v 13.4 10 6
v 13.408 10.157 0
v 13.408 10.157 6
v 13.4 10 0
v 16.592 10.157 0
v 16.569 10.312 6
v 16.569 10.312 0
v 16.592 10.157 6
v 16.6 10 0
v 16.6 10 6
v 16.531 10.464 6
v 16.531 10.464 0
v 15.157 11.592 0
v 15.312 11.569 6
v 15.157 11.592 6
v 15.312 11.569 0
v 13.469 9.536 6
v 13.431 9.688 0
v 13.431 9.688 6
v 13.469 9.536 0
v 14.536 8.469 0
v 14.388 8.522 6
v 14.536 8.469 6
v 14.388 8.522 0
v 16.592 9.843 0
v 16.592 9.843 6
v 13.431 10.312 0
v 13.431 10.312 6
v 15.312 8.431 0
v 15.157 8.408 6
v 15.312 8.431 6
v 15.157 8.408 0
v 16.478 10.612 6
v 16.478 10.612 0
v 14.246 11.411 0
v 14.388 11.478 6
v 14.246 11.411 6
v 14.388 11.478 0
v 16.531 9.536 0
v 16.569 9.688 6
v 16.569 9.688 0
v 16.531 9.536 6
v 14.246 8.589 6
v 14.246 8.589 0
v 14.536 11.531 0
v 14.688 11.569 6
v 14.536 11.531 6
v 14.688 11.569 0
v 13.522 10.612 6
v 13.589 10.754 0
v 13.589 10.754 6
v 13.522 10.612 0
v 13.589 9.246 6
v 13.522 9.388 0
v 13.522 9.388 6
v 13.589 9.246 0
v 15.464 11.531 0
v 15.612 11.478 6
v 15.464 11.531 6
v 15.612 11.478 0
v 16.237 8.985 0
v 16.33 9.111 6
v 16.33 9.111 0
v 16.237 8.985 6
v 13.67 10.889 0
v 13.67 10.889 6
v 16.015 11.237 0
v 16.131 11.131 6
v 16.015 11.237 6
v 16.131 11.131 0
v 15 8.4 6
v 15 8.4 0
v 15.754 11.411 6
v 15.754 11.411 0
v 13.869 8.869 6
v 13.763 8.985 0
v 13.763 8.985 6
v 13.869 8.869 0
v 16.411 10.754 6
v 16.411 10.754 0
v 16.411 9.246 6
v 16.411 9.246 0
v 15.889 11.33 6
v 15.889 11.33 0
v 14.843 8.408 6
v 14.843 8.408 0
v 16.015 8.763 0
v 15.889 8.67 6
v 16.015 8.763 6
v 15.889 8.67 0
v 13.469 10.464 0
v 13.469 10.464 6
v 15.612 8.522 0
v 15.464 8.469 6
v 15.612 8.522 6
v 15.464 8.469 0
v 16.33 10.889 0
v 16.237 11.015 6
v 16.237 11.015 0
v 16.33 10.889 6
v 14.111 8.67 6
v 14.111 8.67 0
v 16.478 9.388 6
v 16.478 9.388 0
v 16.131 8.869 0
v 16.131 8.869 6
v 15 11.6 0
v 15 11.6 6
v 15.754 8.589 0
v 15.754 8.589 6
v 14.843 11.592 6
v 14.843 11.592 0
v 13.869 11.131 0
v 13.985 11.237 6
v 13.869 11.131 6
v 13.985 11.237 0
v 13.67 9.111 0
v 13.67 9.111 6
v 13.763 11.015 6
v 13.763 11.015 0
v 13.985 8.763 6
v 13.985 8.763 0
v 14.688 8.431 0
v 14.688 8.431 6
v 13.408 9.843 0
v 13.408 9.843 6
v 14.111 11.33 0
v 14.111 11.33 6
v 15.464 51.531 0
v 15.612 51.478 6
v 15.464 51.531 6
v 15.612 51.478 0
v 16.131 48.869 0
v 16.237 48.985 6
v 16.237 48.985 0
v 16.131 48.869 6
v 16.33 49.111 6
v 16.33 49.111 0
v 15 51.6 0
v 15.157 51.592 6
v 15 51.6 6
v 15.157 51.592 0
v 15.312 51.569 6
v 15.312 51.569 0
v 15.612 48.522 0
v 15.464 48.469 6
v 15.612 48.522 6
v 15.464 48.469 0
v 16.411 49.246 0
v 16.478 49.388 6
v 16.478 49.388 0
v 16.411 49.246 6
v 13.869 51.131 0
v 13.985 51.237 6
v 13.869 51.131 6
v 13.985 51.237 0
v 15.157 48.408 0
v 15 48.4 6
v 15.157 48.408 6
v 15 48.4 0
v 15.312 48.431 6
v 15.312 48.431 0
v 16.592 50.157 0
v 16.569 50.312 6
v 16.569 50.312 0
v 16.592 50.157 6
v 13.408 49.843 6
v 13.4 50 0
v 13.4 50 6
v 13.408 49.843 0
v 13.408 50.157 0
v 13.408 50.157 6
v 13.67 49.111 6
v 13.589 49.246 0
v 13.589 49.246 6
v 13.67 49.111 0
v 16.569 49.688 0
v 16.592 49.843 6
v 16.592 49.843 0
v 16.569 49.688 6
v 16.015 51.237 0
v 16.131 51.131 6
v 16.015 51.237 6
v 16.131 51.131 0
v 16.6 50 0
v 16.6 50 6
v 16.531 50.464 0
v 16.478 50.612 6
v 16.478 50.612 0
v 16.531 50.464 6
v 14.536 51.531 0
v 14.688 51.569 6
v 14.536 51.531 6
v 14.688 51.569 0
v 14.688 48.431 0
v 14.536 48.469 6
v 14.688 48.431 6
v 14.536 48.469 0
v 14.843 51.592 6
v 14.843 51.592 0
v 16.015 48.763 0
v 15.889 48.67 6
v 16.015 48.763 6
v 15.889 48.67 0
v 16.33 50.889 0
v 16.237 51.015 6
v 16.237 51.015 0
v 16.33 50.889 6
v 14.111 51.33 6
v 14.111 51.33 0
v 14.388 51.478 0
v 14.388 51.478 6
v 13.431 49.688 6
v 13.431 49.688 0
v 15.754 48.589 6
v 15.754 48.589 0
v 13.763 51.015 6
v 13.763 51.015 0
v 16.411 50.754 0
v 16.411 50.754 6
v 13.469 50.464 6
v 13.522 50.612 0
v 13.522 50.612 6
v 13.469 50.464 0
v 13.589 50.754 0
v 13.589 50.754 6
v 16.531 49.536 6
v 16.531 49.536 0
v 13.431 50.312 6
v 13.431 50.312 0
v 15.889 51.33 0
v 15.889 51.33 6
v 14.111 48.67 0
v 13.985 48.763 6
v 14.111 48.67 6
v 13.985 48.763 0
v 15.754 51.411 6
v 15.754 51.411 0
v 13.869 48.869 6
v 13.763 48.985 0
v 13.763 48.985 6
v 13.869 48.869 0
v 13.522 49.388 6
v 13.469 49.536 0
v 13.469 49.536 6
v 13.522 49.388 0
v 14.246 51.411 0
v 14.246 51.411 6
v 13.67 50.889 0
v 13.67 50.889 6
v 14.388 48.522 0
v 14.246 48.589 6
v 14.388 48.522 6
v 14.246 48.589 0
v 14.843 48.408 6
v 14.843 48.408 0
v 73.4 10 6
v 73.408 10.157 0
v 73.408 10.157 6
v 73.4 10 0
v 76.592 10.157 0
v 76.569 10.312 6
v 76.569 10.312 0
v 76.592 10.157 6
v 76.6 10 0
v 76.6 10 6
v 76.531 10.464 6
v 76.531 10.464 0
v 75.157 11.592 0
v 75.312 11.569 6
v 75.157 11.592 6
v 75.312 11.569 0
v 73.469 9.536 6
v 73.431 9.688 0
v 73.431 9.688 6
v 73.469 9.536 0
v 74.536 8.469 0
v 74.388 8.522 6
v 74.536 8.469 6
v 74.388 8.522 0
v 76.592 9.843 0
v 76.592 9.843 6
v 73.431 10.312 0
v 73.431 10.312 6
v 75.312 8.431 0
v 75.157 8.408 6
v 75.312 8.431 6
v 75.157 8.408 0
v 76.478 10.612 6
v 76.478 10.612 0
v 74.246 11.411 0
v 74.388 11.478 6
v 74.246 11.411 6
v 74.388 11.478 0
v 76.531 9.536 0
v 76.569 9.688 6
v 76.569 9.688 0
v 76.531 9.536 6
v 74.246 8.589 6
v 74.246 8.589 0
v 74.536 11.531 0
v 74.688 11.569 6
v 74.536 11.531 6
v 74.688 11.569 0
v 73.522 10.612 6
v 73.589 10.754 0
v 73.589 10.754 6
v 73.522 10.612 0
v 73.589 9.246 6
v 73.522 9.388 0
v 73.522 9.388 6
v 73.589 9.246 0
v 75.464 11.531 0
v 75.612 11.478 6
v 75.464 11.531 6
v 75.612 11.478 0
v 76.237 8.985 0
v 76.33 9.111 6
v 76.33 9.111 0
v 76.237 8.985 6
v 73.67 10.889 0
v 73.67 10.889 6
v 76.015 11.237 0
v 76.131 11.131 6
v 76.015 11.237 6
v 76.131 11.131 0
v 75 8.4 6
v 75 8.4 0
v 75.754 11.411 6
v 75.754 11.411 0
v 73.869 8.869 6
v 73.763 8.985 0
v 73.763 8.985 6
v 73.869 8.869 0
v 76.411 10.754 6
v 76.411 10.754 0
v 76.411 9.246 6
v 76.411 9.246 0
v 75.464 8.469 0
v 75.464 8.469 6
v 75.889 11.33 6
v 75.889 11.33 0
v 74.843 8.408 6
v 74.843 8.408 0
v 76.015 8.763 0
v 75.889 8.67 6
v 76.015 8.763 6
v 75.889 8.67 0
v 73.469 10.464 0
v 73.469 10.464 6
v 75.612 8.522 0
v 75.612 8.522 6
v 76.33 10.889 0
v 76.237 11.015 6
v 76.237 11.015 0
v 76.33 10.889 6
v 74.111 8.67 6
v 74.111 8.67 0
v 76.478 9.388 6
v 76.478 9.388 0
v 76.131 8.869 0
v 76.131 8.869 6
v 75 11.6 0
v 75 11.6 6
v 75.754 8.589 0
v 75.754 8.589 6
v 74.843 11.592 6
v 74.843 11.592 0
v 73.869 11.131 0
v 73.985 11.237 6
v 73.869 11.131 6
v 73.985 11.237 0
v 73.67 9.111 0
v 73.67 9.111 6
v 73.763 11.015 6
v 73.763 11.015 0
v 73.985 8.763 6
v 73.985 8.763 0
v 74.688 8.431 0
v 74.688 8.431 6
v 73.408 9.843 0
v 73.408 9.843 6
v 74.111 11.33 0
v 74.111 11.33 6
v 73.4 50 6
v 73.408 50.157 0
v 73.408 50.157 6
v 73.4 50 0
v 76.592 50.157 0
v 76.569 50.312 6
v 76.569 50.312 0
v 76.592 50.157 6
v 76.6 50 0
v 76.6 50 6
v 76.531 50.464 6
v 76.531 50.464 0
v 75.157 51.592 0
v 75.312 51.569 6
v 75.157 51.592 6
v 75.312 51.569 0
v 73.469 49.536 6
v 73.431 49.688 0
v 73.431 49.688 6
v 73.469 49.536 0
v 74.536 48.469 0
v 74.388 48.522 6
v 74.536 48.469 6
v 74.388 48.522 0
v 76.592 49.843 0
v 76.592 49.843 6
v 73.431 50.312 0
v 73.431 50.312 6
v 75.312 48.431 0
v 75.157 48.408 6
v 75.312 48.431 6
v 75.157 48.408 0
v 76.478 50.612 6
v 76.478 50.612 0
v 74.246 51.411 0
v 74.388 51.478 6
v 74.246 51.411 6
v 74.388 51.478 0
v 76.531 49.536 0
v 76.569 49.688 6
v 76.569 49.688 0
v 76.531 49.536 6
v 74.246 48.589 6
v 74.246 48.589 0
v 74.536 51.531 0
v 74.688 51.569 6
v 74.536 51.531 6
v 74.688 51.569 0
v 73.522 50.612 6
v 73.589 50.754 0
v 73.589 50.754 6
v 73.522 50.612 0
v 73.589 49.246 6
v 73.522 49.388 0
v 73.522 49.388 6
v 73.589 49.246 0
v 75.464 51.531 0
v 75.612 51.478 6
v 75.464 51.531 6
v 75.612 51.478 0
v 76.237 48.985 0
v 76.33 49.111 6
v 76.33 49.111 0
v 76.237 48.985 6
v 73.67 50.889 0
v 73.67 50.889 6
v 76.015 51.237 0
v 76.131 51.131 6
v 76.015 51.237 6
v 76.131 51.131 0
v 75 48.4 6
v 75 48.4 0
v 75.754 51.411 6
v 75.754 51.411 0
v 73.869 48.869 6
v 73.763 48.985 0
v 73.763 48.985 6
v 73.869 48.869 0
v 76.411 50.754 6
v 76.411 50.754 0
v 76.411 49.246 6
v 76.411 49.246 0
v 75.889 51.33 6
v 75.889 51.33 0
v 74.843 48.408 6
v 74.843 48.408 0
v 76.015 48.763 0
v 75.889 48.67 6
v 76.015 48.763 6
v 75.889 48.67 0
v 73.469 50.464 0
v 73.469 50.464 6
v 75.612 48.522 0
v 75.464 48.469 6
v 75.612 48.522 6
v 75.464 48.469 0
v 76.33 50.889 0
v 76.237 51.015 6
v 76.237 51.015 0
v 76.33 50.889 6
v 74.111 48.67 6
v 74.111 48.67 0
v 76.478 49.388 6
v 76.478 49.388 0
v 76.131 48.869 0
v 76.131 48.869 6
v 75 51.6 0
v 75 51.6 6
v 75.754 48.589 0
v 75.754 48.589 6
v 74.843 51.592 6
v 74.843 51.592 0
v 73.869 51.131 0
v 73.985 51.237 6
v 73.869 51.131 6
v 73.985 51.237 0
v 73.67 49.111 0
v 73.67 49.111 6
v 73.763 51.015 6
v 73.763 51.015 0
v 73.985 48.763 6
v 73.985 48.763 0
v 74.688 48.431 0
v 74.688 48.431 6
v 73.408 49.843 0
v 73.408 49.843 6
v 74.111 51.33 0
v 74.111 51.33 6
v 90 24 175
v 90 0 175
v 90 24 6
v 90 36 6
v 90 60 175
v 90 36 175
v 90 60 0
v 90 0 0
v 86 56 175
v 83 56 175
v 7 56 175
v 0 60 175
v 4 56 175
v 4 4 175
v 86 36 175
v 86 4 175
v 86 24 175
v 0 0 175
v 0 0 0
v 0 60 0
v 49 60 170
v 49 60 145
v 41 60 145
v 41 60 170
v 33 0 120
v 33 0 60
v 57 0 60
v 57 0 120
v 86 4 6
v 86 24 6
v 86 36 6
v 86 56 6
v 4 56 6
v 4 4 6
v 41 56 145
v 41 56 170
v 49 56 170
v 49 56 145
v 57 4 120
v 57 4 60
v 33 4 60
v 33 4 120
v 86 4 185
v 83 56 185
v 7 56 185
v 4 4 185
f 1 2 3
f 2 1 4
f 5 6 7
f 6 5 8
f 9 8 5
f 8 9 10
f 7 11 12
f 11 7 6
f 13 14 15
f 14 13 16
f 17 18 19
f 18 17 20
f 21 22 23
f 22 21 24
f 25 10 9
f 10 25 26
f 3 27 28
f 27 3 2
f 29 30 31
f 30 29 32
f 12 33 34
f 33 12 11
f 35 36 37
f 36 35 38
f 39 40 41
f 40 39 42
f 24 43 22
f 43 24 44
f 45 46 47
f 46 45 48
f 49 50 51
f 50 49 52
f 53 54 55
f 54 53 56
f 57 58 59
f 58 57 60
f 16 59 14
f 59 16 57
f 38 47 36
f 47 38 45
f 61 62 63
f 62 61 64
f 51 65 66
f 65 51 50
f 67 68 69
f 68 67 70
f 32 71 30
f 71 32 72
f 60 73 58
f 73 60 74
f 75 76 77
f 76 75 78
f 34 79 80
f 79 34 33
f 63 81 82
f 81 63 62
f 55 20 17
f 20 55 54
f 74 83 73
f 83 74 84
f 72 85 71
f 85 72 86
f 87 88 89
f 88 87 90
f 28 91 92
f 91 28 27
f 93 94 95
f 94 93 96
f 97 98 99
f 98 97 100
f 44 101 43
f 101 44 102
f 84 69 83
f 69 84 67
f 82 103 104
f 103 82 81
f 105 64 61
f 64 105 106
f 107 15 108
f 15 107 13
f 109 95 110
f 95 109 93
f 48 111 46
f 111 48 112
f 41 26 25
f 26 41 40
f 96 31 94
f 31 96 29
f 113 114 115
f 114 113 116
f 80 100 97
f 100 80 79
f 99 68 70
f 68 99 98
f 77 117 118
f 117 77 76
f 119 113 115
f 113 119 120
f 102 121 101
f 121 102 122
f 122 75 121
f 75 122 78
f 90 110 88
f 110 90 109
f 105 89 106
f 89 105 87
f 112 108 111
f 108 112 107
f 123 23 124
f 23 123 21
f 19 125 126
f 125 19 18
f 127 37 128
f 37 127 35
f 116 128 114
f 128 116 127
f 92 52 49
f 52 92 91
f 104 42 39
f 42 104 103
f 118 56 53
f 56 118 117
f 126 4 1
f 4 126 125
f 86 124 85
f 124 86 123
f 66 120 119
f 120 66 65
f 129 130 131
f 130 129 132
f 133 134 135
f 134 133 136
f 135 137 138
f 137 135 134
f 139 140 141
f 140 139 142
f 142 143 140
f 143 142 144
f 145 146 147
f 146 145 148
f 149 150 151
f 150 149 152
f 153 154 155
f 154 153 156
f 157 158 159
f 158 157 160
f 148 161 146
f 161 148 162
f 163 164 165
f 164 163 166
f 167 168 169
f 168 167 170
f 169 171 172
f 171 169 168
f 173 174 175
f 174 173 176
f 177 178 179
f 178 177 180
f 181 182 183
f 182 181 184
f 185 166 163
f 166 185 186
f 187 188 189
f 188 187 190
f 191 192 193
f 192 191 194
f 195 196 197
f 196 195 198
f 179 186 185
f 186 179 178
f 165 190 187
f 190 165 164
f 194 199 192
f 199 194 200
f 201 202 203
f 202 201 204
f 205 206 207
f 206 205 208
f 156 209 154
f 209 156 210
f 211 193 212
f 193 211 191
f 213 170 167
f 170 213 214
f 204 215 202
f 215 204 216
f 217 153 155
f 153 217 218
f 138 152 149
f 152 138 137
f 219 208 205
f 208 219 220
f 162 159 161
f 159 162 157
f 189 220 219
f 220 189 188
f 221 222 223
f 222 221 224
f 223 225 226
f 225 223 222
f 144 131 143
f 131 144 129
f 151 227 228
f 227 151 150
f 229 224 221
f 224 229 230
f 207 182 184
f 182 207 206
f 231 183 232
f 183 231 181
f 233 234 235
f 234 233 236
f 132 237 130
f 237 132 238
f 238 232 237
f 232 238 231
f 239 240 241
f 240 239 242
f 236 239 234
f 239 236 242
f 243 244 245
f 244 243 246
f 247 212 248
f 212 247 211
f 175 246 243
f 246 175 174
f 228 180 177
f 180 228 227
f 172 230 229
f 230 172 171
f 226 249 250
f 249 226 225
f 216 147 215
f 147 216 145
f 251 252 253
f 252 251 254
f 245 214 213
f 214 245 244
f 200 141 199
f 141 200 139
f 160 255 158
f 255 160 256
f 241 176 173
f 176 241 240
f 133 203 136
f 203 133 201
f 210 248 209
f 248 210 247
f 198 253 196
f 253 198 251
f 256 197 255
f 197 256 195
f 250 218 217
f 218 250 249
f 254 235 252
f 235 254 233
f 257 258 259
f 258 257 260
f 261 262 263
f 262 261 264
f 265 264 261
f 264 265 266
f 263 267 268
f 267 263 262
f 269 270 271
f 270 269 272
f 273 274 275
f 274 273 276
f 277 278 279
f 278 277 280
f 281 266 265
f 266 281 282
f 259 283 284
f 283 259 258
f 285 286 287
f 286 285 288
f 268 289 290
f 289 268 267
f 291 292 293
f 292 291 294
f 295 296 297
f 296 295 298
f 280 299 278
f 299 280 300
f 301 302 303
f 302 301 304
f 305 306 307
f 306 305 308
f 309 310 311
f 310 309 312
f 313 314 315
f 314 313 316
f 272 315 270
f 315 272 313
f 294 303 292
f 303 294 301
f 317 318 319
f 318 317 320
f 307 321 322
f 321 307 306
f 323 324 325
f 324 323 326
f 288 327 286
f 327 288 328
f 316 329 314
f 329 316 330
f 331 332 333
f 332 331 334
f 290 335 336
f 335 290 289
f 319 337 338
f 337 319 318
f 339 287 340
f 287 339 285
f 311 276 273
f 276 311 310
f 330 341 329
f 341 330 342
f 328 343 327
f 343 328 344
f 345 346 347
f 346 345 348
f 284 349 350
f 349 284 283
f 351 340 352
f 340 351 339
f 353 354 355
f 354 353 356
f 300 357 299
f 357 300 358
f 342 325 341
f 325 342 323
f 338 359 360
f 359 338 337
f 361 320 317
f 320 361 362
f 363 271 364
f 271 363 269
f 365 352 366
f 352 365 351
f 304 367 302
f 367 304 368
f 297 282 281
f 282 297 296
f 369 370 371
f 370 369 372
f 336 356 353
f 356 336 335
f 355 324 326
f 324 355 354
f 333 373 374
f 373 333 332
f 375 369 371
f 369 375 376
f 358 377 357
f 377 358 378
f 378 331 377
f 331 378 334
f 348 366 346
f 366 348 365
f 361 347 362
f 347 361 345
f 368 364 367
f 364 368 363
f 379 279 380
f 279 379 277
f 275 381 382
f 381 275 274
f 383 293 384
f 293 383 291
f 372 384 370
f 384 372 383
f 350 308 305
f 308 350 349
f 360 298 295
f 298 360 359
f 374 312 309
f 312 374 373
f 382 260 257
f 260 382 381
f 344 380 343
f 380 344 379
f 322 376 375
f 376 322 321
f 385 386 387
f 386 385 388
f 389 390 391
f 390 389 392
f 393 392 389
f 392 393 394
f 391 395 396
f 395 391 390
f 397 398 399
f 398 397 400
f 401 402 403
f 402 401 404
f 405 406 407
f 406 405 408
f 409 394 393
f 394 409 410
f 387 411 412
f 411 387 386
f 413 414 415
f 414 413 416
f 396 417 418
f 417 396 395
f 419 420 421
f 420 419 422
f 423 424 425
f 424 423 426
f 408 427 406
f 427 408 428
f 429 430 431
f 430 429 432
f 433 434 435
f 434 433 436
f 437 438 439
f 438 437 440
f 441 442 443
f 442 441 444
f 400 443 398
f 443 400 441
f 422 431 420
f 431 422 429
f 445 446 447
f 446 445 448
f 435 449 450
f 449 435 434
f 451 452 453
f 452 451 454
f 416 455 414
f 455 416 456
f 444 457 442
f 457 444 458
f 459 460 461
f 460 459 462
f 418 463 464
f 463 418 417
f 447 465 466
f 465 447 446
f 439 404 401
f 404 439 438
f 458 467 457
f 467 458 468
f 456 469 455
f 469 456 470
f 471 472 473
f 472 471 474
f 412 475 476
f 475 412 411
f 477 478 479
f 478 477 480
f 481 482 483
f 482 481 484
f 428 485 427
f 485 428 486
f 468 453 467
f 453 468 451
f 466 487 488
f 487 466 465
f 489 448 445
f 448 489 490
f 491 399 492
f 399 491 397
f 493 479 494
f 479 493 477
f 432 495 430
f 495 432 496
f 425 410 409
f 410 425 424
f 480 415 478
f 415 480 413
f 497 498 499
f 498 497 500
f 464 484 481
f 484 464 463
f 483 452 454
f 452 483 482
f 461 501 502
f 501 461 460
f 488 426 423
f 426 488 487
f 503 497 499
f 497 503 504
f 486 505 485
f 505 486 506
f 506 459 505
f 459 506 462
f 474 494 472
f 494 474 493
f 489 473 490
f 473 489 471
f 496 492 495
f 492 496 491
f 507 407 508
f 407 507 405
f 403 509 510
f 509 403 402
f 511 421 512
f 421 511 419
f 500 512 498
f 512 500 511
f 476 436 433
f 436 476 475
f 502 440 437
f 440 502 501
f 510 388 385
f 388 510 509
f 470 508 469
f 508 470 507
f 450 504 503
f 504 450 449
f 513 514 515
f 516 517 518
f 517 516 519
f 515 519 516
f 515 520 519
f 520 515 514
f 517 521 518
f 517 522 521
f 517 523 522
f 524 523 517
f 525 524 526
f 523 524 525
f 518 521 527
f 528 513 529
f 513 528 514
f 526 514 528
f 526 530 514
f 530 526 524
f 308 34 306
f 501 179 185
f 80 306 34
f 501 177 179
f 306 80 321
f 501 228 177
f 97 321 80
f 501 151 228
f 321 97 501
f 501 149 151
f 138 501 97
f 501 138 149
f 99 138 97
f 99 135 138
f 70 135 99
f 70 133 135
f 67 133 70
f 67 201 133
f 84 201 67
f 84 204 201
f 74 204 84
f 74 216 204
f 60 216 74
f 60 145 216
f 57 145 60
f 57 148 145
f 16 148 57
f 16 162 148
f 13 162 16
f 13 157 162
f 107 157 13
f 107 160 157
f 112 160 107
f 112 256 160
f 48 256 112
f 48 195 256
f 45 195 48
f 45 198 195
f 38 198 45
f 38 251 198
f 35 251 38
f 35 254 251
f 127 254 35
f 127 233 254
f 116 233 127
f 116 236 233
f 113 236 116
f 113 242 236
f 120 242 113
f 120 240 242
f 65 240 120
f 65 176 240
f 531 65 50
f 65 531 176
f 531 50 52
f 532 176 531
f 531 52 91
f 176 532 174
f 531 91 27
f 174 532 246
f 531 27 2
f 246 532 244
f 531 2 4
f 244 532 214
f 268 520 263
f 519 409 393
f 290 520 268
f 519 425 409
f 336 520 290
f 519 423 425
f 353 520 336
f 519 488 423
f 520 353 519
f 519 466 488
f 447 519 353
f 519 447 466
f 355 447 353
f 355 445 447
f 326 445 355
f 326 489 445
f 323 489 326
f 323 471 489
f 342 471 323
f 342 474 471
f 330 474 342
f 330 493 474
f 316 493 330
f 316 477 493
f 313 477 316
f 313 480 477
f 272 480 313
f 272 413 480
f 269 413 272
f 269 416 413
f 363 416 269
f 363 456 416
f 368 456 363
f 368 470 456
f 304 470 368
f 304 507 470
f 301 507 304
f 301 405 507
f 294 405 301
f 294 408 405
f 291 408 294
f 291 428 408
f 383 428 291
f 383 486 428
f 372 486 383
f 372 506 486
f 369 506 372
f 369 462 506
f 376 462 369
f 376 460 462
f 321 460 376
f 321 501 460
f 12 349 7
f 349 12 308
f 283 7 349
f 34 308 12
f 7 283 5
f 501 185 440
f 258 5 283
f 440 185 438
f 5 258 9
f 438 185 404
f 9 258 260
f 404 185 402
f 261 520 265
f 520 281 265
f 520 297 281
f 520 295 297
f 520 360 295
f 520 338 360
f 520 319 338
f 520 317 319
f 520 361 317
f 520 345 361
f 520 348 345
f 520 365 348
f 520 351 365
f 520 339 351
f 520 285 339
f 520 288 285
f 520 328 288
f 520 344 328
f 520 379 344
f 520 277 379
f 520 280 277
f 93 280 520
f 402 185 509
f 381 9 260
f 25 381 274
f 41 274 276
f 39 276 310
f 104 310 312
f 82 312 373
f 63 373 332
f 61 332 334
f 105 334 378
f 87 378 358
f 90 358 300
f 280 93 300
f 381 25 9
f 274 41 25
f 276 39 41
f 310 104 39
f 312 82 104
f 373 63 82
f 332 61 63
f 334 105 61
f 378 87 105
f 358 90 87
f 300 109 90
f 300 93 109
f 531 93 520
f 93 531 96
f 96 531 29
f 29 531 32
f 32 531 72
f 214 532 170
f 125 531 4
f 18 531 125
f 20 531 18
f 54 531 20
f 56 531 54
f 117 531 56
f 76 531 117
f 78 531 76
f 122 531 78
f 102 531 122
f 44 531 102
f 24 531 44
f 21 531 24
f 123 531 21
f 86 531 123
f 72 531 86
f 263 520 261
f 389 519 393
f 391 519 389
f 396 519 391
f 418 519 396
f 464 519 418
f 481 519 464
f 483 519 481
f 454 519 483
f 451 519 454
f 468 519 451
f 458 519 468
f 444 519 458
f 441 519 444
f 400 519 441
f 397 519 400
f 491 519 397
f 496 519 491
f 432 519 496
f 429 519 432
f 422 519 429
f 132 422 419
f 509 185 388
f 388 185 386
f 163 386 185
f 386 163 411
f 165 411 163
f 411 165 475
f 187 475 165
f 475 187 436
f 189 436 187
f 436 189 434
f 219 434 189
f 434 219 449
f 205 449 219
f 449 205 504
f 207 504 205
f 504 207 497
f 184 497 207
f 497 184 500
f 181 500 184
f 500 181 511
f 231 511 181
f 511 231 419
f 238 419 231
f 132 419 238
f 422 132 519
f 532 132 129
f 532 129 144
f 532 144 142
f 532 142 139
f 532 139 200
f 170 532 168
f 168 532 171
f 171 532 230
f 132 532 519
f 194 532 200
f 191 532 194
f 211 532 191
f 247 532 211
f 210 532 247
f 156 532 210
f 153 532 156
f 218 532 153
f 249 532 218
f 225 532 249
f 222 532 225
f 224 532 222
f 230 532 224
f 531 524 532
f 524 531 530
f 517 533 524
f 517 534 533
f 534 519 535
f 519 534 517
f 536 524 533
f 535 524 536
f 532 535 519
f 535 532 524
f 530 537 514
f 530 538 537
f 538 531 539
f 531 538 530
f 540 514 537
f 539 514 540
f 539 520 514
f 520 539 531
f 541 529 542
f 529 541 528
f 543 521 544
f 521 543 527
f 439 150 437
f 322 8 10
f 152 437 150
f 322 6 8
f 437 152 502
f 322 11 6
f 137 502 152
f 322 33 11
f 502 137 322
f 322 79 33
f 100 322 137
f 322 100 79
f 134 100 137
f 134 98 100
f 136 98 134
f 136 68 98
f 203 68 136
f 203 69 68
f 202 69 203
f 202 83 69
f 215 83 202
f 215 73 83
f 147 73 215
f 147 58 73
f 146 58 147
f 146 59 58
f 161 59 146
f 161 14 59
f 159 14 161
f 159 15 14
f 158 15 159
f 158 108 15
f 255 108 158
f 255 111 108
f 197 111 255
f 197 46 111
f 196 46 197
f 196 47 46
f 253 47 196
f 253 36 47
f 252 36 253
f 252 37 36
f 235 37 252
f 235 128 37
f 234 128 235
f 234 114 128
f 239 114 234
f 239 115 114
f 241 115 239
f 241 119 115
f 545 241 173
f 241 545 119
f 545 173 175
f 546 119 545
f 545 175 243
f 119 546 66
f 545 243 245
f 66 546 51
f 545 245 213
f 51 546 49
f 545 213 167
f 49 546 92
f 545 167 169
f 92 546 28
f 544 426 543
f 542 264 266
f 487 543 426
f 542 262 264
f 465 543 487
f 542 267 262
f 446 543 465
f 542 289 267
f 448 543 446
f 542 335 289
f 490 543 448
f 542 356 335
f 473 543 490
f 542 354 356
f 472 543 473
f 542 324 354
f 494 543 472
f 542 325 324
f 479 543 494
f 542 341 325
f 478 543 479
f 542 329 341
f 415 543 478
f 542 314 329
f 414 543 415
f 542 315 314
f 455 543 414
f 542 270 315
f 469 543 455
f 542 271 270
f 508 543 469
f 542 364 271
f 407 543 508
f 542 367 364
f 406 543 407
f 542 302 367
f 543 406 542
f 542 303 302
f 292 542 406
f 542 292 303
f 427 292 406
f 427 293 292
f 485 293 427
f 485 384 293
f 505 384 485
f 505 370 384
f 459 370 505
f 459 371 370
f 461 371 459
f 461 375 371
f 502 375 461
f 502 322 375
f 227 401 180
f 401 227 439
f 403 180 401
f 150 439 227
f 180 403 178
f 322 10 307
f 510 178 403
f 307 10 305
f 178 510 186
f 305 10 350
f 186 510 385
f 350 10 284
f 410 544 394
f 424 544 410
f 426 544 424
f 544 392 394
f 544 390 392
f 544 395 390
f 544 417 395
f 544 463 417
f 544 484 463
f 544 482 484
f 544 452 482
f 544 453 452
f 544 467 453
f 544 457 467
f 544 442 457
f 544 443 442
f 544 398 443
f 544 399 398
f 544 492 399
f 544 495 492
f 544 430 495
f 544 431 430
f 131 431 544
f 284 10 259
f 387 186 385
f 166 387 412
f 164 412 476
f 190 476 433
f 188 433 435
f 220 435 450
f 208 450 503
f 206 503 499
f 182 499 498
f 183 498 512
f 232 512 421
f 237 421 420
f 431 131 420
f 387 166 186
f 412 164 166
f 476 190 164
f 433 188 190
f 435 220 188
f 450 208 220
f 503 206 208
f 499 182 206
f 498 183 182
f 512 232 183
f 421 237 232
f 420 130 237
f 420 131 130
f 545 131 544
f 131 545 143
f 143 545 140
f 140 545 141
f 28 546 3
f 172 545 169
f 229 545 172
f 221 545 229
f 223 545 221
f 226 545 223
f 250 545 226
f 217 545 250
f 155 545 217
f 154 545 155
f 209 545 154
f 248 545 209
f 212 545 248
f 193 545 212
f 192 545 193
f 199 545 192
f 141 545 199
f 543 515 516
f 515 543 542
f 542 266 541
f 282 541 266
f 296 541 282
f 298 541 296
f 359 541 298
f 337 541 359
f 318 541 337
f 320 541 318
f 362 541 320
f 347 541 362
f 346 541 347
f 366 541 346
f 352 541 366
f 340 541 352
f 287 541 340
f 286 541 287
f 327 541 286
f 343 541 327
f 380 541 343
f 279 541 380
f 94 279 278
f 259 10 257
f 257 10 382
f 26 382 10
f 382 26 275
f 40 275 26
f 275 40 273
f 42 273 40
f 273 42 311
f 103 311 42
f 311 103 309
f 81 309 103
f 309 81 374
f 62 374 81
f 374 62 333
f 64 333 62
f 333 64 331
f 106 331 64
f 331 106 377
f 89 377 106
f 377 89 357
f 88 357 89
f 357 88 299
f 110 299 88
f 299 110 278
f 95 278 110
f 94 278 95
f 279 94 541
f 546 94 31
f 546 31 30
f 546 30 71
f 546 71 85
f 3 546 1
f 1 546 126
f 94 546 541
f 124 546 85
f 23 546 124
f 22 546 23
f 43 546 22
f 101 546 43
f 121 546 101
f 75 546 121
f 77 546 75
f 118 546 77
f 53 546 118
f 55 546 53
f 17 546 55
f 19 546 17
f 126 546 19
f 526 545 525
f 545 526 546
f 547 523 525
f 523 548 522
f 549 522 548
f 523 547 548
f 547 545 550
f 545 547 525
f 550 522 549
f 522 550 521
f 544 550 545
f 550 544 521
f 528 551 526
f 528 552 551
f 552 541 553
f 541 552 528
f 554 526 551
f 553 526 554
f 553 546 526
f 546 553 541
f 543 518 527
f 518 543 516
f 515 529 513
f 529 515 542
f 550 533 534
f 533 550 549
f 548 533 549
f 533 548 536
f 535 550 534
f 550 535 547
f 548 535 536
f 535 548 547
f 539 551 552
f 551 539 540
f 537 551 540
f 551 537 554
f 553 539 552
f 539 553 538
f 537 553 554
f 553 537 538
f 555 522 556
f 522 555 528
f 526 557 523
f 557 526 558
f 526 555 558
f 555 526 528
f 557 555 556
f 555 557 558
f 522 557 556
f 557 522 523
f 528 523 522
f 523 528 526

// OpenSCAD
// file: 00_common.scad
// vertical-lift-bridge :: COMMON PARAMETERS
// All dimensions in millimetres. Imported by every part file.
// Ratified parameters from audit Q1–Q7. Do not edit without group approval.

// ==== BUILD VOLUME ====
PRINTER_X = 220;
PRINTER_Y = 220;
PRINTER_Z = 250;
$fn = 64;  // smoothness for production prints

// ==== OVERALL FOOTPRINT ====
FOOTPRINT_X = 1200;        // along the road / cable axis
FOOTPRINT_Y = 600;         // across the river
BASE_T      = 6;           // base panel thickness
WATERWAY_W  = 200;         // navigable channel width

// ==== TOWERS ====
TOWER_H        = 350;       // total height (split-printed in 2 sections)
TOWER_SPLIT    = 175;       // join height
TOWER_W        = 90;        // width
TOWER_D        = 60;        // depth
TOWER_WALL     = 4;         // wall thickness
TOWER_INNER_W  = TOWER_W - 2*TOWER_WALL;
TOWER_INNER_D  = TOWER_D - 2*TOWER_WALL;
TOWER_SPACING  = 800;       // tower-to-tower centre distance

// ==== DECK ====
DECK_L  = 200;              // along the road
DECK_W  = 120;              // across the road
DECK_T  = 6;                // thickness
DECK_LIFT = 180;            // vertical travel

// ==== COUNTERWEIGHT ====
CW_L  = 60;
CW_W  = 40;
CW_H  = 60;
CW_WALL = 3;
CW_NUT_POCKET_D = 14;       // M8 nut across-flats + clearance
CW_NUT_POCKET_H = 8;

// ==== PULLEY ====
PULLEY_D       = 50;
PULLEY_BORE    = 6.2;       // 6 mm shaft + 0.2 clearance
PULLEY_W       = 20;
PULLEY_GROOVE_D = 1.4;      // 1 mm cable + 0.4 clearance
PULLEY_HUB_D   = 12;
PULLEY_HUB_H   = 8;

// ==== MOTOR ====
MOTOR_BODY_D   = 25;        // JGA25-370 body
MOTOR_BODY_L   = 32;
MOTOR_GEARBOX_L = 19;
MOTOR_SHAFT_D  = 6.2;       // 6 mm shaft + 0.2 clearance
MOTOR_FLAT_W   = 5.5;
MOTOR_MOUNT_W  = 35;
MOTOR_MOUNT_T  = 5;
MOTOR_MOUNT_HOLE_D = 3.2;   // M3 clearance

// ==== CABLE GUIDE ====
CABLE_GUIDE_W = 40;
CABLE_GUIDE_D = 30;
CABLE_GUIDE_H = 25;
CABLE_GUIDE_GROOVE_R = 0.7; // half of 1.4 cable channel

// ==== ROAD BARRIER ====
BARRIER_L = 80;
BARRIER_W = 15;
BARRIER_T = 8;
BARRIER_SERVO_HORN_D = 6;

// ==== PCB ENCLOSURE ====
PCB_X = 100;
PCB_Y = 80;
PCB_T = 1.6;
ENC_WALL = 2.5;
ENC_GAP  = 0.3;
ENC_PCB_STANDOFF_H = 5;
ENC_LID_H = 8;
ENC_BASE_H = PCB_T + ENC_PCB_STANDOFF_H + 8;
ENC_OUTER_X = PCB_X + 2*(ENC_WALL + ENC_GAP);
ENC_OUTER_Y = PCB_Y + 2*(ENC_WALL + ENC_GAP);

// ==== CAMERA MOUNT (ESP32-CAM AI-Thinker) ====
CAM_BOARD_X = 40.5;
CAM_BOARD_Y = 27;
CAM_BOARD_T = 1.6;
CAM_LENS_D  = 9.5;
CAM_GANTRY_H = 220;          // height above road for FOV
CAM_TILT_DEG = 25;

// ==== TFT DISPLAY MOUNT ====
// 2.8" ILI9341 with XPT2046 — common module 86×56×4 mm with 8 mm header on one side
TFT_BOARD_X = 86;
TFT_BOARD_Y = 56;
TFT_BOARD_T = 4;
TFT_VISIBLE_X = 58;          // active area
TFT_VISIBLE_Y = 44;
TFT_TILT_DEG = 35;           // Q5 ratified — 35° tilt
TFT_BEZEL = 5;
TFT_BACK_DEPTH = 18;         // header height behind board

// ==== HARDWARE ====
M3_CLEAR  = 3.2;
M3_TAP    = 2.8;
M3_HEAD_D = 6.0;
M3_HEAD_H = 3.0;
M3_INSERT_D = 4.2;           // brass heat-set insert OD
M3_INSERT_H = 5.0;
M8_BOLT_D = 8.4;
// main file
// 01_tower_left.scad — LEFT tower, LOWER section (0 to 175 mm)
// Hollow box with linear-guide T-slot on inner face for counterweight,
// pulley shaft mount at top, dovetail tongue for upper section.
include <00_common.scad>

module tower_dovetail_tongue(w, d) {
    // 10 mm tall trapezoidal tongue centred on top face
    translate([0, 0, 0])
        linear_extrude(10)
            polygon([[-w/2, -d/2], [w/2, -d/2],
                     [w/2-3, d/2], [-w/2+3, d/2]]);
}

module tower_lower_left() {
    difference() {
        // outer shell
        cube([TOWER_W, TOWER_D, TOWER_SPLIT]);
        // hollow inside
        translate([TOWER_WALL, TOWER_WALL, BASE_T])
            cube([TOWER_INNER_W, TOWER_INNER_D, TOWER_SPLIT]);

        // counterweight T-slot (left tower has CW on inner face = +X face)
        translate([TOWER_W - TOWER_WALL - 0.1, TOWER_D/2 - 6, BASE_T])
            cube([TOWER_WALL + 0.2, 12, TOWER_SPLIT - BASE_T]);

        // base mounting holes (4× M3, 60 mm spacing)
        for (x = [15, TOWER_W-15], y = [10, TOWER_D-10])
            translate([x, y, -0.1])
                cylinder(d=M3_CLEAR, h=BASE_T+0.2);

        // cable pass-through slot (top of section, on +X side)
        translate([TOWER_W/2 - 4, TOWER_D - TOWER_WALL - 0.1,
                   TOWER_SPLIT - 30])
            cube([8, TOWER_WALL + 0.2, 25]);

        // inspection window
        translate([TOWER_W/2 - 12, -0.1, 60])
            cube([24, TOWER_WALL + 0.2, 60]);
    }
    // dovetail tongue on top
    translate([TOWER_W/2, TOWER_D/2, TOWER_SPLIT])
        tower_dovetail_tongue(TOWER_W - 8, TOWER_D - 8);
}

tower_lower_left();
